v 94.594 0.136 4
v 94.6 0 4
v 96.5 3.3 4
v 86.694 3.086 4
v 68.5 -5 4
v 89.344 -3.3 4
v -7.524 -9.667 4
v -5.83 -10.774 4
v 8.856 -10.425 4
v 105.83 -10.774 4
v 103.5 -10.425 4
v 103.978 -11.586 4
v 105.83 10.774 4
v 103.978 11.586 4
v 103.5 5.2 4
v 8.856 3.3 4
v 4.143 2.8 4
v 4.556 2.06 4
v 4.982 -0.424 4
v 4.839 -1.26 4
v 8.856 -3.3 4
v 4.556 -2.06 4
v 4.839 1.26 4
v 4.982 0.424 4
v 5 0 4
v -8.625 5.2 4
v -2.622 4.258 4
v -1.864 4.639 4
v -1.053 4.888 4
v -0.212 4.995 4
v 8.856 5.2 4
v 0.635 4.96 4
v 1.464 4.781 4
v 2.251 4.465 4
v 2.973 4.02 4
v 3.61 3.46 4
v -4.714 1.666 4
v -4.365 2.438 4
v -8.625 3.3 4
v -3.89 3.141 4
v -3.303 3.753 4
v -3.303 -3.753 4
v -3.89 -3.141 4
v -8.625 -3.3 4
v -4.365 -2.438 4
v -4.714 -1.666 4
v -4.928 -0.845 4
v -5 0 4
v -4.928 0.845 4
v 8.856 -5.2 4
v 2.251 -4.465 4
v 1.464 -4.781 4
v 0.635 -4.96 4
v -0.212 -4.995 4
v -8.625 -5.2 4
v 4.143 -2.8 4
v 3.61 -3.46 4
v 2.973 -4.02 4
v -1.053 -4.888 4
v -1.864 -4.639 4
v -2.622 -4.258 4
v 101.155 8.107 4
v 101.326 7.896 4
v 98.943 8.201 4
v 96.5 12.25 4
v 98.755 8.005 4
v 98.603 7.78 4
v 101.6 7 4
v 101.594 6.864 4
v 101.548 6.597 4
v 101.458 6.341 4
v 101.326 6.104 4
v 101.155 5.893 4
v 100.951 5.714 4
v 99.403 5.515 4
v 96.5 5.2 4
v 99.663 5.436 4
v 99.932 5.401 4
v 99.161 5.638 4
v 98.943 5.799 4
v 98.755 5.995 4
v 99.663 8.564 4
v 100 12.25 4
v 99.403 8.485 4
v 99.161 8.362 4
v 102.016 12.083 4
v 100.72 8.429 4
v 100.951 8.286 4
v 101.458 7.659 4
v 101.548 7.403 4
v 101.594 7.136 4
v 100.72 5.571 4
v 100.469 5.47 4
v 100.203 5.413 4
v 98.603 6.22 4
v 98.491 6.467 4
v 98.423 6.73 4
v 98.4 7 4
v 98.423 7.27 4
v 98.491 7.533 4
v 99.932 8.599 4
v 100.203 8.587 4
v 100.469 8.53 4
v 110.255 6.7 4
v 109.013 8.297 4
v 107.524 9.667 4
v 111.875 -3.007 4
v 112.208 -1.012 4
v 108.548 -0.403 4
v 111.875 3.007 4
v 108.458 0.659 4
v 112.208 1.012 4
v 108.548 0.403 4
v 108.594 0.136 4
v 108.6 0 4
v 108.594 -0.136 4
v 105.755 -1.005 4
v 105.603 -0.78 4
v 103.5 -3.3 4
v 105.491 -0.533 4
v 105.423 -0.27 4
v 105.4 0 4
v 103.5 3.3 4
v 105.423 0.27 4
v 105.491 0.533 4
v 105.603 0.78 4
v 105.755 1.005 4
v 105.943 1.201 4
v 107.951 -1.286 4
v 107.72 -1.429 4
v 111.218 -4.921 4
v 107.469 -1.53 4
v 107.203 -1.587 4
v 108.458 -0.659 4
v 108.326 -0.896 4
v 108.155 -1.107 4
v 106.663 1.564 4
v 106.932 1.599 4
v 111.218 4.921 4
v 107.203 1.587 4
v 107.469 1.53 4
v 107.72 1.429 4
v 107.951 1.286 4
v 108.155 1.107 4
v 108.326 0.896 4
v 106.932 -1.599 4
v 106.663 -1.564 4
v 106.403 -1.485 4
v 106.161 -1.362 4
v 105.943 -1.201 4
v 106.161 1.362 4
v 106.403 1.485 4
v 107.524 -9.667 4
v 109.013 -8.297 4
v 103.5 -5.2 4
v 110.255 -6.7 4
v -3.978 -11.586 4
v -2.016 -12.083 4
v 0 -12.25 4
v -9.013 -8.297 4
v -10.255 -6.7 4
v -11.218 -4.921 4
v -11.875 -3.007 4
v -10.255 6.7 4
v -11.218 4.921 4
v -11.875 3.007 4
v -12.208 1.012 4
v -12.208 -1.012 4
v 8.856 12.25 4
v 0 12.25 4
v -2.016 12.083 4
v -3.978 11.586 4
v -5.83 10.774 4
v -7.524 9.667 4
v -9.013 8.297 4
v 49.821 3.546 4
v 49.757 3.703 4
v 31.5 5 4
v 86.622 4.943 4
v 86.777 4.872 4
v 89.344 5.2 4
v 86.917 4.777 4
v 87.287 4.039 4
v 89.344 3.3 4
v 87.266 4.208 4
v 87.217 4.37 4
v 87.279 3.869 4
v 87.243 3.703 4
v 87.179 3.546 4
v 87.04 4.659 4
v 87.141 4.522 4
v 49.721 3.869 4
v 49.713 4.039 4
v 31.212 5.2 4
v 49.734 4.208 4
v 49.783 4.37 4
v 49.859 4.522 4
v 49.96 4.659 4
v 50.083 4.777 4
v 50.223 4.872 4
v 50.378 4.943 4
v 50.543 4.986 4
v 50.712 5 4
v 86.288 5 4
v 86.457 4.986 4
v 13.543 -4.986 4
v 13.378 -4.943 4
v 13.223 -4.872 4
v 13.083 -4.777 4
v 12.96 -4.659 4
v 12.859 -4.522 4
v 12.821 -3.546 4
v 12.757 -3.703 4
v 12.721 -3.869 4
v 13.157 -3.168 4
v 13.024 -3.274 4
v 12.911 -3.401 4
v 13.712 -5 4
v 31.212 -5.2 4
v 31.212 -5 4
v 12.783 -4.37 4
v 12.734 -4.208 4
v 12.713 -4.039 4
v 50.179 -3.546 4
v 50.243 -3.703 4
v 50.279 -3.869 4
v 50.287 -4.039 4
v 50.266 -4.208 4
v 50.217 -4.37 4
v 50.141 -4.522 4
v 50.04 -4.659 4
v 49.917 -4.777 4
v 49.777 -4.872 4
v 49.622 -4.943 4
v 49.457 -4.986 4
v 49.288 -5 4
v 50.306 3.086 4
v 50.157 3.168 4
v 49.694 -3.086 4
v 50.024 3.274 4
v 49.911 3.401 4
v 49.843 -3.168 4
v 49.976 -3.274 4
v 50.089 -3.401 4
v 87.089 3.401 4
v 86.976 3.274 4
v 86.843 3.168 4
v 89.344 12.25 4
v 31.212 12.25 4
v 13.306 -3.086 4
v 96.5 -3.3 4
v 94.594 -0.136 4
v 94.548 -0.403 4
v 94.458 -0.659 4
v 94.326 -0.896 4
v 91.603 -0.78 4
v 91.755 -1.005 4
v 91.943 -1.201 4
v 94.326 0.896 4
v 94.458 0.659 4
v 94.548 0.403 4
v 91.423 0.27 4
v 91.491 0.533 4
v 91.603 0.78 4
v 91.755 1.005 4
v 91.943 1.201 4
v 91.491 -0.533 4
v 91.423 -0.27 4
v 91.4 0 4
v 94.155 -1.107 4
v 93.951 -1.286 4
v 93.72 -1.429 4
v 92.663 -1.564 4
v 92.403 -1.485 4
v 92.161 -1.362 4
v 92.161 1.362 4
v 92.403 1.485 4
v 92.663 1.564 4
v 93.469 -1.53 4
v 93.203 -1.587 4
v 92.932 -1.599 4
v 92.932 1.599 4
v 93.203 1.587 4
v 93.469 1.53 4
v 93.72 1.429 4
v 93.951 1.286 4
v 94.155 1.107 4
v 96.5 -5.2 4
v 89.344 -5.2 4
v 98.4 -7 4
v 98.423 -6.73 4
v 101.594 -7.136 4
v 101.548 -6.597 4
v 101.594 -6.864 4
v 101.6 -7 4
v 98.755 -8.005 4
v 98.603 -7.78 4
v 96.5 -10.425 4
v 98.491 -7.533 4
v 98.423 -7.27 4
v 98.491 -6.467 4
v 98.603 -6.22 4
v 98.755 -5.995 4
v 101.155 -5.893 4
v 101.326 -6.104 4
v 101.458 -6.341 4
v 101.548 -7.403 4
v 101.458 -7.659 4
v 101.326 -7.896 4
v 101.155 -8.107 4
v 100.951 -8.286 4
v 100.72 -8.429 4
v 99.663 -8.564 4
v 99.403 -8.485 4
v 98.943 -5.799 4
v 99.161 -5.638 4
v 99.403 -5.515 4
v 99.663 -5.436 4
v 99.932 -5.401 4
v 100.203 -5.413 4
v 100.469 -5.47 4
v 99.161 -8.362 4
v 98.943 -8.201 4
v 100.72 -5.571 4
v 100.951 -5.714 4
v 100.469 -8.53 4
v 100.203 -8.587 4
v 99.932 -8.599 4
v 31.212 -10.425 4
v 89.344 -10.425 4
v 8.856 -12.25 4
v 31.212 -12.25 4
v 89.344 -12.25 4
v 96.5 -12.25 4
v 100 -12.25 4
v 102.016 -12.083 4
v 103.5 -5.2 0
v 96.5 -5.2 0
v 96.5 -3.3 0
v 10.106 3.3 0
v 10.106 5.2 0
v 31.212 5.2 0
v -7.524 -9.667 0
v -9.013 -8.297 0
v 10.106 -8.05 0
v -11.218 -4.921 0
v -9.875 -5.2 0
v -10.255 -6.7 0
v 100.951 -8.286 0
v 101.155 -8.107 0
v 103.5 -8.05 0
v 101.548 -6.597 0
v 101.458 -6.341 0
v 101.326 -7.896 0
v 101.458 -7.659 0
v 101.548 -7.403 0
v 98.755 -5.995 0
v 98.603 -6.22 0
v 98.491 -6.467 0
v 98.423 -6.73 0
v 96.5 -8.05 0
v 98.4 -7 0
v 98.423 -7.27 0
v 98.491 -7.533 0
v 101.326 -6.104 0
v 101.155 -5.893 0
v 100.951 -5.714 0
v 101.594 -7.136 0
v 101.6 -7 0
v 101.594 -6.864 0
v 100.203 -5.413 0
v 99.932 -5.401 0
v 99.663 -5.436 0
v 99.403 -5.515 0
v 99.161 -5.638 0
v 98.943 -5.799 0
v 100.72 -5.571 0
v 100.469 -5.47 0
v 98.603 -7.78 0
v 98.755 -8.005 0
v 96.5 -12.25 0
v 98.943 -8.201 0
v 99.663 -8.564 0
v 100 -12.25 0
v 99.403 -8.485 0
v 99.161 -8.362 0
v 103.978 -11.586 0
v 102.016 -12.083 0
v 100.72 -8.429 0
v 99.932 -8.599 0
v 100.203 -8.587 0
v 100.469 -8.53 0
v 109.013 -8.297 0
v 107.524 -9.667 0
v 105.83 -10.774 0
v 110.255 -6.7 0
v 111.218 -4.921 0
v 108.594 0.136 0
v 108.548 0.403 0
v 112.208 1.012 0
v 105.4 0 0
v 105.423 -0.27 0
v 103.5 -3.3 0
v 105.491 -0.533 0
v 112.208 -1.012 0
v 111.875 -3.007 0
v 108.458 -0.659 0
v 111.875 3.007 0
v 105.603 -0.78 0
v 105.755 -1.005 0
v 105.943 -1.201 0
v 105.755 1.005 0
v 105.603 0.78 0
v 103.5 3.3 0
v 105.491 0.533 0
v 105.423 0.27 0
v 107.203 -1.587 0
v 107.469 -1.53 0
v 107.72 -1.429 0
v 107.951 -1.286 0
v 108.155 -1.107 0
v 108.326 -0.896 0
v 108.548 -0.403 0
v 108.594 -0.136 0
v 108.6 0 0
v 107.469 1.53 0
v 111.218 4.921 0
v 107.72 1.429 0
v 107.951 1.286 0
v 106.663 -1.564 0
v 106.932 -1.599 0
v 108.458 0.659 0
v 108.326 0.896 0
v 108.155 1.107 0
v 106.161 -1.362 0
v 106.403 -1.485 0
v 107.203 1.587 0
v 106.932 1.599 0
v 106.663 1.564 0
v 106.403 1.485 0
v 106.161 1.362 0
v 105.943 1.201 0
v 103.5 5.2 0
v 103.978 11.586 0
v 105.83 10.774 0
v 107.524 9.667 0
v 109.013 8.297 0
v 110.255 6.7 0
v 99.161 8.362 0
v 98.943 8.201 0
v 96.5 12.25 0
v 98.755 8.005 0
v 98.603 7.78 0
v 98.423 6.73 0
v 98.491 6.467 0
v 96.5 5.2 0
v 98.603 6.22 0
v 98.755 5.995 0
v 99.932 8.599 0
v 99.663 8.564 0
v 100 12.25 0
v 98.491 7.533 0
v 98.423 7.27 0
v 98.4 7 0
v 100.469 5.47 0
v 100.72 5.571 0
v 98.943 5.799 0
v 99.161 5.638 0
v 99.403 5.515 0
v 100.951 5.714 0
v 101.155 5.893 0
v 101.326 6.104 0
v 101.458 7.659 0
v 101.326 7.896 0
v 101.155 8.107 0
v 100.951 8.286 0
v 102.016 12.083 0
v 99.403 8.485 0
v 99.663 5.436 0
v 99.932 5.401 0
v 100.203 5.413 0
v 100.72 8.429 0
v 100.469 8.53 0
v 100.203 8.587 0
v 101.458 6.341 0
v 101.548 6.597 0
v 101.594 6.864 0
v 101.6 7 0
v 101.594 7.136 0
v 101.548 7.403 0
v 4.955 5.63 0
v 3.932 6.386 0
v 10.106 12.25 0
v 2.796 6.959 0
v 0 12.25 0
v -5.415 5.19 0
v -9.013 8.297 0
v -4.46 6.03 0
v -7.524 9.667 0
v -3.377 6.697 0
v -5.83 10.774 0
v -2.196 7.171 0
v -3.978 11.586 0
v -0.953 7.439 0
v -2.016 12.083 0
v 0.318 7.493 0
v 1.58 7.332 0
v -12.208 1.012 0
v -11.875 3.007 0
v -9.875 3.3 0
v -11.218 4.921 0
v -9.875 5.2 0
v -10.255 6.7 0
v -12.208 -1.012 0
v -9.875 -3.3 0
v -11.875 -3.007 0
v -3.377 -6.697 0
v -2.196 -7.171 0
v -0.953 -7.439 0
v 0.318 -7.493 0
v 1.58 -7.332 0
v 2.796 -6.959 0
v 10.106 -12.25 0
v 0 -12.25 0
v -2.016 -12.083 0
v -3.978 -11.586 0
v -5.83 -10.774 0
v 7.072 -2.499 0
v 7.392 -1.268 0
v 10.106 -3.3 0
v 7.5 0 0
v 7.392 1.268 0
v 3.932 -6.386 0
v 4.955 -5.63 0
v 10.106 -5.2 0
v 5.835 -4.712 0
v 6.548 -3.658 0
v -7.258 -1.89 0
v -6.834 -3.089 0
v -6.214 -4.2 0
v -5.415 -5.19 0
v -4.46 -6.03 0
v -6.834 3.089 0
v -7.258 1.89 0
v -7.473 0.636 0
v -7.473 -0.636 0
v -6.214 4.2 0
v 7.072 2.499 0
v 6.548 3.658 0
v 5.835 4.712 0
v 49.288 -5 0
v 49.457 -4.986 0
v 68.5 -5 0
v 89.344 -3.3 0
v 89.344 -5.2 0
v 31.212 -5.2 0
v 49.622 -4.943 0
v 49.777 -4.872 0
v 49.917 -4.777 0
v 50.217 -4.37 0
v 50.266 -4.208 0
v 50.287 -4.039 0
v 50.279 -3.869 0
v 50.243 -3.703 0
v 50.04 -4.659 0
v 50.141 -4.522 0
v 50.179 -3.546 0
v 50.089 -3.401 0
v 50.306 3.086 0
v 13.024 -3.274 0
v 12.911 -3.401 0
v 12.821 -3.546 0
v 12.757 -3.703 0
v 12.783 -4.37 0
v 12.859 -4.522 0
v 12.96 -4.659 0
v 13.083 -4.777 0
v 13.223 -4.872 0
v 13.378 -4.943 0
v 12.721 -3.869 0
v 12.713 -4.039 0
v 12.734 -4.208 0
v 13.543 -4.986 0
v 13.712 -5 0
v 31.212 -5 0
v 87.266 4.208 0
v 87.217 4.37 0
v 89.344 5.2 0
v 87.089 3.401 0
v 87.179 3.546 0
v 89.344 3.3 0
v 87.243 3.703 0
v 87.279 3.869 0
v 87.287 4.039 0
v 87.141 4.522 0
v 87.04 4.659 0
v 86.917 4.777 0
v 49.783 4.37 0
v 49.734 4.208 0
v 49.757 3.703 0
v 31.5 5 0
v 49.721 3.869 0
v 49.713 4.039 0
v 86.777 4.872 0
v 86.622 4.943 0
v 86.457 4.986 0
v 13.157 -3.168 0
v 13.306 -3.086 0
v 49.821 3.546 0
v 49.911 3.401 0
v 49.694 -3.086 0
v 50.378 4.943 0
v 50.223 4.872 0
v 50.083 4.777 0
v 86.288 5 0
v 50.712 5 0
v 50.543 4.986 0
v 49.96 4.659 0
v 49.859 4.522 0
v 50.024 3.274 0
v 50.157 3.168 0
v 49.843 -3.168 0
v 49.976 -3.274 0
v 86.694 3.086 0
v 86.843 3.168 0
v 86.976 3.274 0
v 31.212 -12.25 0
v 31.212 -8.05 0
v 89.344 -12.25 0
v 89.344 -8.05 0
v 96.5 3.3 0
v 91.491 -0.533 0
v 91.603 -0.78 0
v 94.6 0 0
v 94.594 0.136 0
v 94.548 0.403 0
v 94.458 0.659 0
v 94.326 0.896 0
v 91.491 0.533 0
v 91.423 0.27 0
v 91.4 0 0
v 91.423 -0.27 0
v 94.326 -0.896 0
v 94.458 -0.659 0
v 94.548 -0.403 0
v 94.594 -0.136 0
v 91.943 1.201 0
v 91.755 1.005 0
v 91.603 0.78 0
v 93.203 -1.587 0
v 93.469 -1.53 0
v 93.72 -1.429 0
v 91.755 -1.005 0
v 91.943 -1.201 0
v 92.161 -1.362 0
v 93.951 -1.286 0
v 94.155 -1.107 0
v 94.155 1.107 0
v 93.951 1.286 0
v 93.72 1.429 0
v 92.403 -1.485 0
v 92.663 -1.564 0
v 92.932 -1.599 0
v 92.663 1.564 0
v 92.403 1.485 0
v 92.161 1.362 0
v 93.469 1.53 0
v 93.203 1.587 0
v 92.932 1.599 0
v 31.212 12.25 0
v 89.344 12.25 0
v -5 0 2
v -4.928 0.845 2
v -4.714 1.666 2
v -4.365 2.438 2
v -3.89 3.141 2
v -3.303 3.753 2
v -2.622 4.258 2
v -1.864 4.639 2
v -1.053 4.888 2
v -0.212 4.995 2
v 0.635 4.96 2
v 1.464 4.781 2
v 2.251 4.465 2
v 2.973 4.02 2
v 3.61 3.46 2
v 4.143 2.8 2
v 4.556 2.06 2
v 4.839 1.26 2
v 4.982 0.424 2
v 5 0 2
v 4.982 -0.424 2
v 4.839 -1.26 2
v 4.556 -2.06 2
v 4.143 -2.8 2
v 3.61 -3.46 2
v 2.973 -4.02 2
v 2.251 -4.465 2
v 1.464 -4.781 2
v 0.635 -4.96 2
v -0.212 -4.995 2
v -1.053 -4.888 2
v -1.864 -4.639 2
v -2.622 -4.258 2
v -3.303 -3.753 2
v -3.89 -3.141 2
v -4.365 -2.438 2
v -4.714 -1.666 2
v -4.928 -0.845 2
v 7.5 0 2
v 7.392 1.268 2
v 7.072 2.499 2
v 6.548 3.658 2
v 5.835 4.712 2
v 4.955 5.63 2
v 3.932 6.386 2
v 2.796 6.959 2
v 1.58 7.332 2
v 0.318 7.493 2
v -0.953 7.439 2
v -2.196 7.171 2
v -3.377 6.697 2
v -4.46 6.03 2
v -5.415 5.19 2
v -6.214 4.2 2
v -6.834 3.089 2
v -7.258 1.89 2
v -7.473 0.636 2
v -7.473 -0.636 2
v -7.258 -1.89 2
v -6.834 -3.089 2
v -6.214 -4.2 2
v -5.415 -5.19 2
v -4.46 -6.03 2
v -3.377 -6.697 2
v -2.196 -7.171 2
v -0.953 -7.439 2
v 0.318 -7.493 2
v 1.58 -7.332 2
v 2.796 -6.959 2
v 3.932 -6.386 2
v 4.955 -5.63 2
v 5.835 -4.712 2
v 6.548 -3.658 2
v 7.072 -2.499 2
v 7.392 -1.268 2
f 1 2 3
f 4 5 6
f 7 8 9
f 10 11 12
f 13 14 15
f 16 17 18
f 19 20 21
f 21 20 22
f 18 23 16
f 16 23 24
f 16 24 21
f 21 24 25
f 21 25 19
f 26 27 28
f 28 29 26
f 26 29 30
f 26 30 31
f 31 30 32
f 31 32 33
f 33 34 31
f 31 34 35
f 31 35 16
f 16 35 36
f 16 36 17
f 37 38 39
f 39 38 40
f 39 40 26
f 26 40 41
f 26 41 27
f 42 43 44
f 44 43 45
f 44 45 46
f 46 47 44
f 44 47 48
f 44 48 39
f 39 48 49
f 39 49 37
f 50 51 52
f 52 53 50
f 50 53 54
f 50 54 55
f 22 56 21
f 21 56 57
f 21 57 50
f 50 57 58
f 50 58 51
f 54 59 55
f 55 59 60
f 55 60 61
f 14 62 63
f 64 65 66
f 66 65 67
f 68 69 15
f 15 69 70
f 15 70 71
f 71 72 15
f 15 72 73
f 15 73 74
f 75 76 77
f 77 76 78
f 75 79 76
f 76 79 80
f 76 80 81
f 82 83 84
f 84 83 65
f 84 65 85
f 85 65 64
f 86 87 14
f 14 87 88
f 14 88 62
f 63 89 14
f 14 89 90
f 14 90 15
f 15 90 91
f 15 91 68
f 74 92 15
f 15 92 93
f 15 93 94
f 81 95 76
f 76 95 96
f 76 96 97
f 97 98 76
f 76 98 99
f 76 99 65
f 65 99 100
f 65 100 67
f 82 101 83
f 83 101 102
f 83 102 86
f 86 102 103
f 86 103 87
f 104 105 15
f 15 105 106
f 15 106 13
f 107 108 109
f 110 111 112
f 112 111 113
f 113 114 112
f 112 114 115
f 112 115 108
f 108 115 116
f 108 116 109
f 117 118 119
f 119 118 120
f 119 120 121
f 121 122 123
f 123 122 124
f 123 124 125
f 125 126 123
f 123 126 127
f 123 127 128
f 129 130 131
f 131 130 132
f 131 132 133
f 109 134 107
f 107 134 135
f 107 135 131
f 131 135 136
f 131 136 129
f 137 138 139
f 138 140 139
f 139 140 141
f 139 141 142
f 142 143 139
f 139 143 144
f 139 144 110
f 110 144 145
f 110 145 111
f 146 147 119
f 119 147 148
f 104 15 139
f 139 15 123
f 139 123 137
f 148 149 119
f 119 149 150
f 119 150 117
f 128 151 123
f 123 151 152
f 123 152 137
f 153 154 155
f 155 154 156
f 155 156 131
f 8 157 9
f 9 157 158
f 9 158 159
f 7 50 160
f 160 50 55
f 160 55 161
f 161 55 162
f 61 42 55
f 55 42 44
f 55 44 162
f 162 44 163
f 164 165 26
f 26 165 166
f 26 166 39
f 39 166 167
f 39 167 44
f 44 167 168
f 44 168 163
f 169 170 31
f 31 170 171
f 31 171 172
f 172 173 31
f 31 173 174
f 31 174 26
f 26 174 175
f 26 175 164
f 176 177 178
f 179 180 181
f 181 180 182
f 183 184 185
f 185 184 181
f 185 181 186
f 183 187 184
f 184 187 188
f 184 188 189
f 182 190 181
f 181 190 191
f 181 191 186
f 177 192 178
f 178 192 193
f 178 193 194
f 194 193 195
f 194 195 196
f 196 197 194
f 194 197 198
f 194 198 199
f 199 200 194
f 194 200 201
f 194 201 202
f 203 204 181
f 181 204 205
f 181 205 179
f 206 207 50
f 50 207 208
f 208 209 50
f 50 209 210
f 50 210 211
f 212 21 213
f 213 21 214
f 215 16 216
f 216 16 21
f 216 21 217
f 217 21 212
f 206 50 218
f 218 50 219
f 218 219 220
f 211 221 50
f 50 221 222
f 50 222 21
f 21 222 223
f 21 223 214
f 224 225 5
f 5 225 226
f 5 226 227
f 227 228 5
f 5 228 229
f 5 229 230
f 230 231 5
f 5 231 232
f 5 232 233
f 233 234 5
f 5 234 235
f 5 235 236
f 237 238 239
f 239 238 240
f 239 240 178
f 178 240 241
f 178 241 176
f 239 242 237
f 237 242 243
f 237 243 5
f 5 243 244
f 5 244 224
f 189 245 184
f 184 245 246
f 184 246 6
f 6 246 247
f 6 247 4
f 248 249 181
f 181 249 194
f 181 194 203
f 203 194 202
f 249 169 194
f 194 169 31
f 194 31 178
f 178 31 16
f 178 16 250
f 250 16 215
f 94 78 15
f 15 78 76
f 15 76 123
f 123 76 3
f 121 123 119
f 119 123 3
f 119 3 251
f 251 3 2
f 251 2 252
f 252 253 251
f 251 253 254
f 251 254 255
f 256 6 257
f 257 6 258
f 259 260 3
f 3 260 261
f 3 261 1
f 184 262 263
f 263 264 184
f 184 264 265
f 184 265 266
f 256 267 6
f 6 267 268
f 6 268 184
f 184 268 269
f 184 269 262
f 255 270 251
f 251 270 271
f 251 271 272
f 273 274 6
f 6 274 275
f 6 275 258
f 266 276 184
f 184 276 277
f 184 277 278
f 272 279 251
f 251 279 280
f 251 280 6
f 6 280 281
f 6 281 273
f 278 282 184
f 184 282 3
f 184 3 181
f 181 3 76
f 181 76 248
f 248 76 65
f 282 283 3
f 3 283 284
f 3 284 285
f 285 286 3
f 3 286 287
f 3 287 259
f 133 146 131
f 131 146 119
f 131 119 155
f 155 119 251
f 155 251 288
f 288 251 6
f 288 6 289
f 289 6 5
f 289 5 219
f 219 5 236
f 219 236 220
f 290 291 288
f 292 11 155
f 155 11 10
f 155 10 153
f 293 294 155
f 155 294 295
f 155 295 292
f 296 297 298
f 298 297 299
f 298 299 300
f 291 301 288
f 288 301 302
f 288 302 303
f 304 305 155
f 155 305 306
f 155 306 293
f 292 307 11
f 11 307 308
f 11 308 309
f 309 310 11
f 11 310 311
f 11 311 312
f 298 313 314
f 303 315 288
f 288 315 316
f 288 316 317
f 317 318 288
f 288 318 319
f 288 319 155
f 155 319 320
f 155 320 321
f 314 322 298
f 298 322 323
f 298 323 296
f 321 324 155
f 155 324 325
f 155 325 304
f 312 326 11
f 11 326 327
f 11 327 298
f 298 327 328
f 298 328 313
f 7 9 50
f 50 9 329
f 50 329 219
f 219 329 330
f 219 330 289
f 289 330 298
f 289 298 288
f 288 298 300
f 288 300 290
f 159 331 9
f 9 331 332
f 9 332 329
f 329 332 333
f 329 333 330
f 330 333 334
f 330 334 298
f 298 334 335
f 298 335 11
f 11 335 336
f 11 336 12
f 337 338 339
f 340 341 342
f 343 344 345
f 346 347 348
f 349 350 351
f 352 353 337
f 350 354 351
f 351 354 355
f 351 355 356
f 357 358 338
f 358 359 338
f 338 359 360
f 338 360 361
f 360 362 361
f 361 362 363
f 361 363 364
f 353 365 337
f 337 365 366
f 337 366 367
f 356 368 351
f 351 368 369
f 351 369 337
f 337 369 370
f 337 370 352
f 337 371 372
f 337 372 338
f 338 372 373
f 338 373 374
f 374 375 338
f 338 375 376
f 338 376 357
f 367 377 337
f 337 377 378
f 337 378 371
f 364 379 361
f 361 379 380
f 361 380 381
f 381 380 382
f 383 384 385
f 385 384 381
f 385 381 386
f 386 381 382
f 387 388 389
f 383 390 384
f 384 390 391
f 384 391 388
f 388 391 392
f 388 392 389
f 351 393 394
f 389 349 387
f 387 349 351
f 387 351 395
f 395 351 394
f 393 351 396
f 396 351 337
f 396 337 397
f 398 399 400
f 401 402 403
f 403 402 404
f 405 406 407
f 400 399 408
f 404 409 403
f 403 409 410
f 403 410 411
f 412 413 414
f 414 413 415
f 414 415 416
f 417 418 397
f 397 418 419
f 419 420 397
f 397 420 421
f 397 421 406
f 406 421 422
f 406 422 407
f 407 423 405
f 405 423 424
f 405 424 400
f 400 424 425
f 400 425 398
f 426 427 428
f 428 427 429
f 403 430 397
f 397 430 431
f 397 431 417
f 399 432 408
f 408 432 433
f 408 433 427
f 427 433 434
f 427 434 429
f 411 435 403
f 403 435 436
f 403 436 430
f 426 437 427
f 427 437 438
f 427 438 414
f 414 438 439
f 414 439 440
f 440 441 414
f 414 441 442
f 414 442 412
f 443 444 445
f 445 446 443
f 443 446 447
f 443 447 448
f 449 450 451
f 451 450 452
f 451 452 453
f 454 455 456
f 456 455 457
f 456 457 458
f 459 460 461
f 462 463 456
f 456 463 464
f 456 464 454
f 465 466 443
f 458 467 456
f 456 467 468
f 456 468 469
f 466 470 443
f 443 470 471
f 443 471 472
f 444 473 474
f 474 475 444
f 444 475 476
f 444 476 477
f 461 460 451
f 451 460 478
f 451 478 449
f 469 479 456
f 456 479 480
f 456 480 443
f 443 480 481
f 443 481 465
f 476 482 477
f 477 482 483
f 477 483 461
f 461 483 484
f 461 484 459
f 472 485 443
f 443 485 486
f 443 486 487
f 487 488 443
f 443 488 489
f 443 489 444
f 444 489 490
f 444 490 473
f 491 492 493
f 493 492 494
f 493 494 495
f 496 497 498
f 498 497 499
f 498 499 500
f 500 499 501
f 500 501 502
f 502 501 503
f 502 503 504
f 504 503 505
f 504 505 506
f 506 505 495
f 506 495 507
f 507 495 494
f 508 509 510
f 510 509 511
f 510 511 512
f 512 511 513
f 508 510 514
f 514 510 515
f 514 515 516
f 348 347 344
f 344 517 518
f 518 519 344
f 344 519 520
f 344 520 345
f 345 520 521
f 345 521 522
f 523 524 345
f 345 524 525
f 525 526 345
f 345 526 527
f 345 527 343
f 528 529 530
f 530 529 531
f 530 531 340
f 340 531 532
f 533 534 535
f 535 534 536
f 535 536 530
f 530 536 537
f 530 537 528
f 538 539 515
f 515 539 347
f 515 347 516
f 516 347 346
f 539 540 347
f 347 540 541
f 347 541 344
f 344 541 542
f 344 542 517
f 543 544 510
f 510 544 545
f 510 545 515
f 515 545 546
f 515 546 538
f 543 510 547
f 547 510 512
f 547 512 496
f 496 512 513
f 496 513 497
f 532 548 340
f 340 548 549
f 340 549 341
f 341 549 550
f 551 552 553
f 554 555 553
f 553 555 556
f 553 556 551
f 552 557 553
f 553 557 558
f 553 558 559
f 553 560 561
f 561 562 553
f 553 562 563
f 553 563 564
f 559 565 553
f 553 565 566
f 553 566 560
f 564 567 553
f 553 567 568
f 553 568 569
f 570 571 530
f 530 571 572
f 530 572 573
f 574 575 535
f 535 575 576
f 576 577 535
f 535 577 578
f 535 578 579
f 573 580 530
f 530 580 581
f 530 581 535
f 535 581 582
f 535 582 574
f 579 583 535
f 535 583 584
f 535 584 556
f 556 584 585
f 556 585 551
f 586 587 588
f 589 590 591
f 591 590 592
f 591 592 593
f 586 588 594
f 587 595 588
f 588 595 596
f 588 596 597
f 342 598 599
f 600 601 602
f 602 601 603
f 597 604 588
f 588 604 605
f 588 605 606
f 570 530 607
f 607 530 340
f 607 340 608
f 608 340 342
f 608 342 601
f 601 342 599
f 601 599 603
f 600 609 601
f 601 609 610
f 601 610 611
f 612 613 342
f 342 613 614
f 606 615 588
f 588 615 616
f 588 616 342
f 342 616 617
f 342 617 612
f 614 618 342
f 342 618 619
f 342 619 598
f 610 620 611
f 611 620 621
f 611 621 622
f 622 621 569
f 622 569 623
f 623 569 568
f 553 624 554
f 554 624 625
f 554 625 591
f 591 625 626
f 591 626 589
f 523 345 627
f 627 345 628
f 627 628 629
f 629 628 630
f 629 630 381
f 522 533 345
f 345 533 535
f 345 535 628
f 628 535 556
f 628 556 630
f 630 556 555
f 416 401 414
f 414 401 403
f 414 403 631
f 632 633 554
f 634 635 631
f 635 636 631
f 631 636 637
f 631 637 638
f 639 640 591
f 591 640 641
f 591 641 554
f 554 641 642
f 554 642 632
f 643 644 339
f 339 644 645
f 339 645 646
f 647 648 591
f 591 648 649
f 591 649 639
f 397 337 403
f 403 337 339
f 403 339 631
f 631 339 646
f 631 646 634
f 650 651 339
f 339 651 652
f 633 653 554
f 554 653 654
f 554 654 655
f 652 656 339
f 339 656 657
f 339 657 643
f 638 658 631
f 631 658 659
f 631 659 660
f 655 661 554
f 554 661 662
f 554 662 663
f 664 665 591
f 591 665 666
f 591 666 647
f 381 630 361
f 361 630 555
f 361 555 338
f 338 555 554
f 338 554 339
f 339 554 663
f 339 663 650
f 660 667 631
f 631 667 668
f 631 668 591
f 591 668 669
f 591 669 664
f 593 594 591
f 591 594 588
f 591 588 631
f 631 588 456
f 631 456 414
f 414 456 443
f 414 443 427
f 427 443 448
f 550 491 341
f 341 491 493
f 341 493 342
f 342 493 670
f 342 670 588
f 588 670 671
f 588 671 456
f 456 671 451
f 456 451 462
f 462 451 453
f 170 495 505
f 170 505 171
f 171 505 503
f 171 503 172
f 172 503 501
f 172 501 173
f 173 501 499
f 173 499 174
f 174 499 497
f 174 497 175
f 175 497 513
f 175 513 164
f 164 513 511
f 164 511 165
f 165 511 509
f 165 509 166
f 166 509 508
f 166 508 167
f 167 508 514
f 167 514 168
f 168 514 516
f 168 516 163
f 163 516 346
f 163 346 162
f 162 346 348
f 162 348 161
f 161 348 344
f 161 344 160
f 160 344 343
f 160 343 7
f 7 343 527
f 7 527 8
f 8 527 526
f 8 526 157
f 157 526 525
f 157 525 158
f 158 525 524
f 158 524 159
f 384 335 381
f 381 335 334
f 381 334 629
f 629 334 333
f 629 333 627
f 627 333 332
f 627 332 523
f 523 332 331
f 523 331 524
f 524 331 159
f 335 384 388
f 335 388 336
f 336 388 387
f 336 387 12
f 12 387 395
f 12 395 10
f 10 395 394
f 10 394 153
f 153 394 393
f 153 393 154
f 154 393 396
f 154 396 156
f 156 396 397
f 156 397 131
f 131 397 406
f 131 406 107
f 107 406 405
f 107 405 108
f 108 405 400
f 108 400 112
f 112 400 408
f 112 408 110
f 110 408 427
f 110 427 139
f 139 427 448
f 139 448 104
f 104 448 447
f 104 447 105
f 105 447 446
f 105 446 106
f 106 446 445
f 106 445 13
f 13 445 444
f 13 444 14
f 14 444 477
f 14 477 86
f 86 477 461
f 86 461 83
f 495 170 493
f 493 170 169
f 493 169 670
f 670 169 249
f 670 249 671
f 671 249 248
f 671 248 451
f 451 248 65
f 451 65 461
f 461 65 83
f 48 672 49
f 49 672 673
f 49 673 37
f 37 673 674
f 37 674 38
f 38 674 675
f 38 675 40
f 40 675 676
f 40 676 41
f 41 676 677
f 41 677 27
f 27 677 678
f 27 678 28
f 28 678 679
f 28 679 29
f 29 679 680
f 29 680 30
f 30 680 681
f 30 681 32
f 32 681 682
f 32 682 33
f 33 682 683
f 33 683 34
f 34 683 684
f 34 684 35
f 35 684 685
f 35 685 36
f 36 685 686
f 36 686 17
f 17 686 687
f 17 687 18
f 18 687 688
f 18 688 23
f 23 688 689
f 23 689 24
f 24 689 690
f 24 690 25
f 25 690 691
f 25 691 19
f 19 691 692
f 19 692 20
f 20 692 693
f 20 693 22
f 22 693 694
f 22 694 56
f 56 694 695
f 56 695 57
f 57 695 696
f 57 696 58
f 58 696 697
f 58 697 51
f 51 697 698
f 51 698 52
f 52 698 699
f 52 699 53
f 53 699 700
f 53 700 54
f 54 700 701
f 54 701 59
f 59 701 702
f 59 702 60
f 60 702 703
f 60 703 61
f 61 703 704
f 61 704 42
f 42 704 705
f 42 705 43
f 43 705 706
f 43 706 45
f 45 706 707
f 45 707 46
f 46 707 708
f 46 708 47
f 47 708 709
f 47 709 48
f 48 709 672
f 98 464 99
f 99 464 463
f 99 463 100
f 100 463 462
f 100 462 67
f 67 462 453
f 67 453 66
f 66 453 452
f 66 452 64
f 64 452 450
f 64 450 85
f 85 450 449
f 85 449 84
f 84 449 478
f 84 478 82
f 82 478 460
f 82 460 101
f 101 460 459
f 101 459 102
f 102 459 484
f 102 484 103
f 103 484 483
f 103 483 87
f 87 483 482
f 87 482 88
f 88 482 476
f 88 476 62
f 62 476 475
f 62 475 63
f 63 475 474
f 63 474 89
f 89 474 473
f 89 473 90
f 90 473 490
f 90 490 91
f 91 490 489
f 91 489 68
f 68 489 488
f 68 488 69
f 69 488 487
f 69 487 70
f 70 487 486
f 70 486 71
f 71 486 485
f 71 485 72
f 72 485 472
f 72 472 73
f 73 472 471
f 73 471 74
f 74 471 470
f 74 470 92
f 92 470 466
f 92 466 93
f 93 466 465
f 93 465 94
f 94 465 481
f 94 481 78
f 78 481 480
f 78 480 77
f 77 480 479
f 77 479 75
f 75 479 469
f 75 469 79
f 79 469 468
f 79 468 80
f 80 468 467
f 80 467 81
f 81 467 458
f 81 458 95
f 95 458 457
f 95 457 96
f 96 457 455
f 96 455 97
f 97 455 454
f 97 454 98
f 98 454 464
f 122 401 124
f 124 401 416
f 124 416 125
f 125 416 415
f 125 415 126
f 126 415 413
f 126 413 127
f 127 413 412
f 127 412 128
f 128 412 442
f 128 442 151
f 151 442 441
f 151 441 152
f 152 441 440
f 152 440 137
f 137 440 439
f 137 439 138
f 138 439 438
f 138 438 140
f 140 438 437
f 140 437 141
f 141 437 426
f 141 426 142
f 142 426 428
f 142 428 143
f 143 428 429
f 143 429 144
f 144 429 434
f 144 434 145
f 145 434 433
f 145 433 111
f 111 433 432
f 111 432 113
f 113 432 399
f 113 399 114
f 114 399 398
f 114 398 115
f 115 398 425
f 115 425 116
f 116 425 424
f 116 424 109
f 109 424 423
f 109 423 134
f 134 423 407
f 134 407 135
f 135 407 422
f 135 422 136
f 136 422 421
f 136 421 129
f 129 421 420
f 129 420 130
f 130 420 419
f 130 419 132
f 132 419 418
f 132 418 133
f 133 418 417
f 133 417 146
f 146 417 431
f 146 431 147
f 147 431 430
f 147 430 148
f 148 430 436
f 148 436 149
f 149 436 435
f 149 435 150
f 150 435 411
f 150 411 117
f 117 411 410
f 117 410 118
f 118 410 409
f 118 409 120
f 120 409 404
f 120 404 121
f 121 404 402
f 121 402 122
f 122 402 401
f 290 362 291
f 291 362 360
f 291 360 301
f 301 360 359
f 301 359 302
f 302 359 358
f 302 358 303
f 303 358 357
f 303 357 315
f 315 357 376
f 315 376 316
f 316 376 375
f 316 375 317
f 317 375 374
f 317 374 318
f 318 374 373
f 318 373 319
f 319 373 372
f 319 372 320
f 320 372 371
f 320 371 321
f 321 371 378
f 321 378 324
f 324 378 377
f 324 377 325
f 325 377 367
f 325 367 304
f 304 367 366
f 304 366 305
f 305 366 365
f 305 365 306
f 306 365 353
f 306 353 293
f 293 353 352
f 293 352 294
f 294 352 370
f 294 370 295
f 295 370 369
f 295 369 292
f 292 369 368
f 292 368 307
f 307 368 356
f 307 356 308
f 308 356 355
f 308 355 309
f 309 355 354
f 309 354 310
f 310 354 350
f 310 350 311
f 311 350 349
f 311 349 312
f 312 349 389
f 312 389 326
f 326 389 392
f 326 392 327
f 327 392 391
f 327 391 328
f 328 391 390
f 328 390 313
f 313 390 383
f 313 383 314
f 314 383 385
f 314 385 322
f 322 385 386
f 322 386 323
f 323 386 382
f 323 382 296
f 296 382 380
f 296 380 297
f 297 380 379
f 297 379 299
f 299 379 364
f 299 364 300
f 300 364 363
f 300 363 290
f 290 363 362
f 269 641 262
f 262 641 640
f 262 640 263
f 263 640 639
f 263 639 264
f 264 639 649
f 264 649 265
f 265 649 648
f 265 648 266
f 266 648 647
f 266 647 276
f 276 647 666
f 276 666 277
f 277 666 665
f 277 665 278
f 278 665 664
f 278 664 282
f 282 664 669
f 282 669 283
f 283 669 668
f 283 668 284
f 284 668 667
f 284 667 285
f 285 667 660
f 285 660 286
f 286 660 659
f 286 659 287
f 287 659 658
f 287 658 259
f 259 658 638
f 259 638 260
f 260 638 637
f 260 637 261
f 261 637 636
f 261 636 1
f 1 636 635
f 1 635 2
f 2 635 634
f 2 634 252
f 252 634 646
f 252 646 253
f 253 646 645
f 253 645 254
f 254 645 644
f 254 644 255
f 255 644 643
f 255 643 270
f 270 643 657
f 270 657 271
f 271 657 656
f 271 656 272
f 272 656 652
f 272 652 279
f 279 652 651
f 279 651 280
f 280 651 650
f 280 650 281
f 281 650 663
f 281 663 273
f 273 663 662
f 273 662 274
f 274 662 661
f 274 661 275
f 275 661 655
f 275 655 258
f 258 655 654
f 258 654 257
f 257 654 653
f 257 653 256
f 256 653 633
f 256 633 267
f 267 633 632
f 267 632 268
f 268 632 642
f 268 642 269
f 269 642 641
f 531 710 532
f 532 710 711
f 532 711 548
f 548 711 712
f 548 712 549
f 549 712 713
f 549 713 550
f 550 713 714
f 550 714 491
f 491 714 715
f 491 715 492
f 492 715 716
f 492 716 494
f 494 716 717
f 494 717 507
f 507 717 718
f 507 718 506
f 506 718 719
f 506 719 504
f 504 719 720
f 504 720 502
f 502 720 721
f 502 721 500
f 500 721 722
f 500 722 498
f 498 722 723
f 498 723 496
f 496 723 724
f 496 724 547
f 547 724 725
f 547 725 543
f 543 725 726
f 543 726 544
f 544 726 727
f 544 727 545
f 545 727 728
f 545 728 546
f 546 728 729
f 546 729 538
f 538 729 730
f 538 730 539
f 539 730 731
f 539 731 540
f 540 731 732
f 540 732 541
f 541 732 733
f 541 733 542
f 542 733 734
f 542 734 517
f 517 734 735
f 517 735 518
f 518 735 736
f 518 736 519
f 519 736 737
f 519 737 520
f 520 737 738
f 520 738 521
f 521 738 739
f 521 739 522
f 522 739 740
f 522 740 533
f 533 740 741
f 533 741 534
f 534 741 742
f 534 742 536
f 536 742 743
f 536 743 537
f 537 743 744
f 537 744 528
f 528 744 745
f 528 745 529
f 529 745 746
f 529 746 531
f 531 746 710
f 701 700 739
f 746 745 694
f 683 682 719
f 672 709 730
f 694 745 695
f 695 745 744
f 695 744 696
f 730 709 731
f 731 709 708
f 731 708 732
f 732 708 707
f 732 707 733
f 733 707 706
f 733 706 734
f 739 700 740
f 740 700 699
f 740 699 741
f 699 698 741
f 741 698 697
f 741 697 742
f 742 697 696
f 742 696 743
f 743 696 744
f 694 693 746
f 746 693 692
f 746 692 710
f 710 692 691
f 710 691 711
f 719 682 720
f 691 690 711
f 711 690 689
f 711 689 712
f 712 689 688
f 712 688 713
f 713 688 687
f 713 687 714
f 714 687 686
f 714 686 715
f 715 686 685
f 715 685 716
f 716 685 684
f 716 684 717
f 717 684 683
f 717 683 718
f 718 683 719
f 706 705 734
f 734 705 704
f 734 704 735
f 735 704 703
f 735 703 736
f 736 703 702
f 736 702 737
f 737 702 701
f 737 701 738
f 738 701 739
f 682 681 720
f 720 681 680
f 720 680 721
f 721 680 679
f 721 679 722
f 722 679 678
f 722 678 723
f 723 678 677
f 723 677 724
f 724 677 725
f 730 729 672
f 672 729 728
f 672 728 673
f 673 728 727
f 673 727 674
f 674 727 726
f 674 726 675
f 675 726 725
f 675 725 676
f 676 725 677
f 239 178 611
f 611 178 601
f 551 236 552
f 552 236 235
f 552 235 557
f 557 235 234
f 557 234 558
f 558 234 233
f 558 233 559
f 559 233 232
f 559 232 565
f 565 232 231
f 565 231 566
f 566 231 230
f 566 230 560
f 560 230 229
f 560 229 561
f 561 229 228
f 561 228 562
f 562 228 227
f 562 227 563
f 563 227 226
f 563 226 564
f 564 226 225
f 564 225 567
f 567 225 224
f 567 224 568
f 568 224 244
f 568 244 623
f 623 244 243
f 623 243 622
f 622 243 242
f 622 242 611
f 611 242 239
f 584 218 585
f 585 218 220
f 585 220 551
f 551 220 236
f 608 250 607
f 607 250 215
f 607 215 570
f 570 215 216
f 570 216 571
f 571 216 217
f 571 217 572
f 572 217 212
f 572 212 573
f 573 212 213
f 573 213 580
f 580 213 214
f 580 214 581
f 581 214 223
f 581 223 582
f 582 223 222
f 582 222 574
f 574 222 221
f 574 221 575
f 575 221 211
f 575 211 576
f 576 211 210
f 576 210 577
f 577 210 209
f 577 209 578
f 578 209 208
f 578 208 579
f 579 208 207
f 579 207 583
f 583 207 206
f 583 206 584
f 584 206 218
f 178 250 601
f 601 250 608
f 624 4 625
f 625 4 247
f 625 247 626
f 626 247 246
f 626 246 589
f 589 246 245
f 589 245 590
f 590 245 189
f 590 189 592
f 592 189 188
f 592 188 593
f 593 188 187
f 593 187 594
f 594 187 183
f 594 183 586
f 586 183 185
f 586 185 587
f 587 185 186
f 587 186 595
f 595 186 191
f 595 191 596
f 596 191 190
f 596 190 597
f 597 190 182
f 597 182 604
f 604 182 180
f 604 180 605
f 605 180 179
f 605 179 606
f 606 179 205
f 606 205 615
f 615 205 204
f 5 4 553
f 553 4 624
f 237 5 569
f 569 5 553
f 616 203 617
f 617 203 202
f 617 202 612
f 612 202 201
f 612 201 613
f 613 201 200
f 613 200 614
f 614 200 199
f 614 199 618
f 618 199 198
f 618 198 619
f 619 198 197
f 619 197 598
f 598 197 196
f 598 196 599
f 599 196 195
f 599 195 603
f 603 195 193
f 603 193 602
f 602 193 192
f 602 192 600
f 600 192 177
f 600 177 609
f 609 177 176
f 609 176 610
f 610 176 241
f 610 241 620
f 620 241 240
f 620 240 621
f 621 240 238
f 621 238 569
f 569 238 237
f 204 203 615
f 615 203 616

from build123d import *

# Parameters (mm, degrees)
SKETCH_1_R          = 5
SKETCH_1_R_2        = 1.6
EXTRUDE_1_DEPTH     = 4
SKETCH_4_R          = 7.5
CUT_EXTRUDE_3_DEPTH = 3
CUT_EXTRUDE_4_REACH = 6


with BuildPart() as part:
    # 草图1 → 凸台-拉伸1 (new body)
    with BuildSketch(Plane.XY):
        with BuildLine():
            Line((0, 12.25), (100, 12.25))
            ThreePointArc((100, 12.25), (112.25, 0), (100, -12.25))
            Line((100, -12.25), (0, -12.25))
            ThreePointArc((0, -12.25), (-12.25, 0), (0, 12.25))
        make_face()
        Circle(SKETCH_1_R, mode=Mode.SUBTRACT)
        with Locations((100, 7)):
            Circle(SKETCH_1_R_2, mode=Mode.SUBTRACT)
        with Locations((107, 0)):
            Circle(SKETCH_1_R_2, mode=Mode.SUBTRACT)
        with Locations((100, -7)):
            Circle(SKETCH_1_R_2, mode=Mode.SUBTRACT)
        with Locations((93, 0)):
            Circle(SKETCH_1_R_2, mode=Mode.SUBTRACT)
    extrude(amount=EXTRUDE_1_DEPTH)

    # 草图4 → 切除-拉伸3 (cut)
    with BuildSketch(Plane.XY.offset(2)):
        Circle(SKETCH_4_R)
    extrude(amount=-CUT_EXTRUDE_3_DEPTH, mode=Mode.SUBTRACT)

    # 草图5 → 切除-拉伸4 (cut, up to next)
    with BuildSketch(Plane.XY.offset(4), mode=Mode.PRIVATE) as cut_extrude_4_sk1:
        with BuildLine():
            Line((31.5, 5), (13.306075984, -3.086188451))
            ThreePointArc((13.306075984, -3.086188451), (12.733998843, -4.207591488), (13.71221445, -5))
            Line((13.71221445, -5), (49.28778555, -5))
            ThreePointArc((49.28778555, -5), (50.266001157, -4.207591488), (49.693924016, -3.086188451))
            Line((49.693924016, -3.086188451), (31.5, 5))
        make_face()
    cut_extrude_4_tool1 = extrude(cut_extrude_4_sk1.sketch, amount=-CUT_EXTRUDE_4_REACH, mode=Mode.PRIVATE) & part.part
    add(cut_extrude_4_tool1.solids().sort_by_distance((31.5, -1.58127, 4))[0], mode=Mode.SUBTRACT)
    # 草图5 → 切除-拉伸4 (cut, up to next)
    with BuildSketch(Plane.XY.offset(4), mode=Mode.PRIVATE) as cut_extrude_4_sk2:
        with BuildLine():
            Line((68.5, -5), (86.693924016, 3.086188451))
            ThreePointArc((86.693924016, 3.086188451), (87.266001157, 4.207591488), (86.28778555, 5))
            Line((86.28778555, 5), (50.71221445, 5))
            ThreePointArc((50.71221445, 5), (49.733998843, 4.207591488), (50.306075984, 3.086188451))
            Line((50.306075984, 3.086188451), (68.5, -5))
        make_face()
    cut_extrude_4_tool2 = extrude(cut_extrude_4_sk2.sketch, amount=-CUT_EXTRUDE_4_REACH, mode=Mode.PRIVATE) & part.part
    add(cut_extrude_4_tool2.solids().sort_by_distance((68.5, 1.58127, 4))[0], mode=Mode.SUBTRACT)


solid = part.part
